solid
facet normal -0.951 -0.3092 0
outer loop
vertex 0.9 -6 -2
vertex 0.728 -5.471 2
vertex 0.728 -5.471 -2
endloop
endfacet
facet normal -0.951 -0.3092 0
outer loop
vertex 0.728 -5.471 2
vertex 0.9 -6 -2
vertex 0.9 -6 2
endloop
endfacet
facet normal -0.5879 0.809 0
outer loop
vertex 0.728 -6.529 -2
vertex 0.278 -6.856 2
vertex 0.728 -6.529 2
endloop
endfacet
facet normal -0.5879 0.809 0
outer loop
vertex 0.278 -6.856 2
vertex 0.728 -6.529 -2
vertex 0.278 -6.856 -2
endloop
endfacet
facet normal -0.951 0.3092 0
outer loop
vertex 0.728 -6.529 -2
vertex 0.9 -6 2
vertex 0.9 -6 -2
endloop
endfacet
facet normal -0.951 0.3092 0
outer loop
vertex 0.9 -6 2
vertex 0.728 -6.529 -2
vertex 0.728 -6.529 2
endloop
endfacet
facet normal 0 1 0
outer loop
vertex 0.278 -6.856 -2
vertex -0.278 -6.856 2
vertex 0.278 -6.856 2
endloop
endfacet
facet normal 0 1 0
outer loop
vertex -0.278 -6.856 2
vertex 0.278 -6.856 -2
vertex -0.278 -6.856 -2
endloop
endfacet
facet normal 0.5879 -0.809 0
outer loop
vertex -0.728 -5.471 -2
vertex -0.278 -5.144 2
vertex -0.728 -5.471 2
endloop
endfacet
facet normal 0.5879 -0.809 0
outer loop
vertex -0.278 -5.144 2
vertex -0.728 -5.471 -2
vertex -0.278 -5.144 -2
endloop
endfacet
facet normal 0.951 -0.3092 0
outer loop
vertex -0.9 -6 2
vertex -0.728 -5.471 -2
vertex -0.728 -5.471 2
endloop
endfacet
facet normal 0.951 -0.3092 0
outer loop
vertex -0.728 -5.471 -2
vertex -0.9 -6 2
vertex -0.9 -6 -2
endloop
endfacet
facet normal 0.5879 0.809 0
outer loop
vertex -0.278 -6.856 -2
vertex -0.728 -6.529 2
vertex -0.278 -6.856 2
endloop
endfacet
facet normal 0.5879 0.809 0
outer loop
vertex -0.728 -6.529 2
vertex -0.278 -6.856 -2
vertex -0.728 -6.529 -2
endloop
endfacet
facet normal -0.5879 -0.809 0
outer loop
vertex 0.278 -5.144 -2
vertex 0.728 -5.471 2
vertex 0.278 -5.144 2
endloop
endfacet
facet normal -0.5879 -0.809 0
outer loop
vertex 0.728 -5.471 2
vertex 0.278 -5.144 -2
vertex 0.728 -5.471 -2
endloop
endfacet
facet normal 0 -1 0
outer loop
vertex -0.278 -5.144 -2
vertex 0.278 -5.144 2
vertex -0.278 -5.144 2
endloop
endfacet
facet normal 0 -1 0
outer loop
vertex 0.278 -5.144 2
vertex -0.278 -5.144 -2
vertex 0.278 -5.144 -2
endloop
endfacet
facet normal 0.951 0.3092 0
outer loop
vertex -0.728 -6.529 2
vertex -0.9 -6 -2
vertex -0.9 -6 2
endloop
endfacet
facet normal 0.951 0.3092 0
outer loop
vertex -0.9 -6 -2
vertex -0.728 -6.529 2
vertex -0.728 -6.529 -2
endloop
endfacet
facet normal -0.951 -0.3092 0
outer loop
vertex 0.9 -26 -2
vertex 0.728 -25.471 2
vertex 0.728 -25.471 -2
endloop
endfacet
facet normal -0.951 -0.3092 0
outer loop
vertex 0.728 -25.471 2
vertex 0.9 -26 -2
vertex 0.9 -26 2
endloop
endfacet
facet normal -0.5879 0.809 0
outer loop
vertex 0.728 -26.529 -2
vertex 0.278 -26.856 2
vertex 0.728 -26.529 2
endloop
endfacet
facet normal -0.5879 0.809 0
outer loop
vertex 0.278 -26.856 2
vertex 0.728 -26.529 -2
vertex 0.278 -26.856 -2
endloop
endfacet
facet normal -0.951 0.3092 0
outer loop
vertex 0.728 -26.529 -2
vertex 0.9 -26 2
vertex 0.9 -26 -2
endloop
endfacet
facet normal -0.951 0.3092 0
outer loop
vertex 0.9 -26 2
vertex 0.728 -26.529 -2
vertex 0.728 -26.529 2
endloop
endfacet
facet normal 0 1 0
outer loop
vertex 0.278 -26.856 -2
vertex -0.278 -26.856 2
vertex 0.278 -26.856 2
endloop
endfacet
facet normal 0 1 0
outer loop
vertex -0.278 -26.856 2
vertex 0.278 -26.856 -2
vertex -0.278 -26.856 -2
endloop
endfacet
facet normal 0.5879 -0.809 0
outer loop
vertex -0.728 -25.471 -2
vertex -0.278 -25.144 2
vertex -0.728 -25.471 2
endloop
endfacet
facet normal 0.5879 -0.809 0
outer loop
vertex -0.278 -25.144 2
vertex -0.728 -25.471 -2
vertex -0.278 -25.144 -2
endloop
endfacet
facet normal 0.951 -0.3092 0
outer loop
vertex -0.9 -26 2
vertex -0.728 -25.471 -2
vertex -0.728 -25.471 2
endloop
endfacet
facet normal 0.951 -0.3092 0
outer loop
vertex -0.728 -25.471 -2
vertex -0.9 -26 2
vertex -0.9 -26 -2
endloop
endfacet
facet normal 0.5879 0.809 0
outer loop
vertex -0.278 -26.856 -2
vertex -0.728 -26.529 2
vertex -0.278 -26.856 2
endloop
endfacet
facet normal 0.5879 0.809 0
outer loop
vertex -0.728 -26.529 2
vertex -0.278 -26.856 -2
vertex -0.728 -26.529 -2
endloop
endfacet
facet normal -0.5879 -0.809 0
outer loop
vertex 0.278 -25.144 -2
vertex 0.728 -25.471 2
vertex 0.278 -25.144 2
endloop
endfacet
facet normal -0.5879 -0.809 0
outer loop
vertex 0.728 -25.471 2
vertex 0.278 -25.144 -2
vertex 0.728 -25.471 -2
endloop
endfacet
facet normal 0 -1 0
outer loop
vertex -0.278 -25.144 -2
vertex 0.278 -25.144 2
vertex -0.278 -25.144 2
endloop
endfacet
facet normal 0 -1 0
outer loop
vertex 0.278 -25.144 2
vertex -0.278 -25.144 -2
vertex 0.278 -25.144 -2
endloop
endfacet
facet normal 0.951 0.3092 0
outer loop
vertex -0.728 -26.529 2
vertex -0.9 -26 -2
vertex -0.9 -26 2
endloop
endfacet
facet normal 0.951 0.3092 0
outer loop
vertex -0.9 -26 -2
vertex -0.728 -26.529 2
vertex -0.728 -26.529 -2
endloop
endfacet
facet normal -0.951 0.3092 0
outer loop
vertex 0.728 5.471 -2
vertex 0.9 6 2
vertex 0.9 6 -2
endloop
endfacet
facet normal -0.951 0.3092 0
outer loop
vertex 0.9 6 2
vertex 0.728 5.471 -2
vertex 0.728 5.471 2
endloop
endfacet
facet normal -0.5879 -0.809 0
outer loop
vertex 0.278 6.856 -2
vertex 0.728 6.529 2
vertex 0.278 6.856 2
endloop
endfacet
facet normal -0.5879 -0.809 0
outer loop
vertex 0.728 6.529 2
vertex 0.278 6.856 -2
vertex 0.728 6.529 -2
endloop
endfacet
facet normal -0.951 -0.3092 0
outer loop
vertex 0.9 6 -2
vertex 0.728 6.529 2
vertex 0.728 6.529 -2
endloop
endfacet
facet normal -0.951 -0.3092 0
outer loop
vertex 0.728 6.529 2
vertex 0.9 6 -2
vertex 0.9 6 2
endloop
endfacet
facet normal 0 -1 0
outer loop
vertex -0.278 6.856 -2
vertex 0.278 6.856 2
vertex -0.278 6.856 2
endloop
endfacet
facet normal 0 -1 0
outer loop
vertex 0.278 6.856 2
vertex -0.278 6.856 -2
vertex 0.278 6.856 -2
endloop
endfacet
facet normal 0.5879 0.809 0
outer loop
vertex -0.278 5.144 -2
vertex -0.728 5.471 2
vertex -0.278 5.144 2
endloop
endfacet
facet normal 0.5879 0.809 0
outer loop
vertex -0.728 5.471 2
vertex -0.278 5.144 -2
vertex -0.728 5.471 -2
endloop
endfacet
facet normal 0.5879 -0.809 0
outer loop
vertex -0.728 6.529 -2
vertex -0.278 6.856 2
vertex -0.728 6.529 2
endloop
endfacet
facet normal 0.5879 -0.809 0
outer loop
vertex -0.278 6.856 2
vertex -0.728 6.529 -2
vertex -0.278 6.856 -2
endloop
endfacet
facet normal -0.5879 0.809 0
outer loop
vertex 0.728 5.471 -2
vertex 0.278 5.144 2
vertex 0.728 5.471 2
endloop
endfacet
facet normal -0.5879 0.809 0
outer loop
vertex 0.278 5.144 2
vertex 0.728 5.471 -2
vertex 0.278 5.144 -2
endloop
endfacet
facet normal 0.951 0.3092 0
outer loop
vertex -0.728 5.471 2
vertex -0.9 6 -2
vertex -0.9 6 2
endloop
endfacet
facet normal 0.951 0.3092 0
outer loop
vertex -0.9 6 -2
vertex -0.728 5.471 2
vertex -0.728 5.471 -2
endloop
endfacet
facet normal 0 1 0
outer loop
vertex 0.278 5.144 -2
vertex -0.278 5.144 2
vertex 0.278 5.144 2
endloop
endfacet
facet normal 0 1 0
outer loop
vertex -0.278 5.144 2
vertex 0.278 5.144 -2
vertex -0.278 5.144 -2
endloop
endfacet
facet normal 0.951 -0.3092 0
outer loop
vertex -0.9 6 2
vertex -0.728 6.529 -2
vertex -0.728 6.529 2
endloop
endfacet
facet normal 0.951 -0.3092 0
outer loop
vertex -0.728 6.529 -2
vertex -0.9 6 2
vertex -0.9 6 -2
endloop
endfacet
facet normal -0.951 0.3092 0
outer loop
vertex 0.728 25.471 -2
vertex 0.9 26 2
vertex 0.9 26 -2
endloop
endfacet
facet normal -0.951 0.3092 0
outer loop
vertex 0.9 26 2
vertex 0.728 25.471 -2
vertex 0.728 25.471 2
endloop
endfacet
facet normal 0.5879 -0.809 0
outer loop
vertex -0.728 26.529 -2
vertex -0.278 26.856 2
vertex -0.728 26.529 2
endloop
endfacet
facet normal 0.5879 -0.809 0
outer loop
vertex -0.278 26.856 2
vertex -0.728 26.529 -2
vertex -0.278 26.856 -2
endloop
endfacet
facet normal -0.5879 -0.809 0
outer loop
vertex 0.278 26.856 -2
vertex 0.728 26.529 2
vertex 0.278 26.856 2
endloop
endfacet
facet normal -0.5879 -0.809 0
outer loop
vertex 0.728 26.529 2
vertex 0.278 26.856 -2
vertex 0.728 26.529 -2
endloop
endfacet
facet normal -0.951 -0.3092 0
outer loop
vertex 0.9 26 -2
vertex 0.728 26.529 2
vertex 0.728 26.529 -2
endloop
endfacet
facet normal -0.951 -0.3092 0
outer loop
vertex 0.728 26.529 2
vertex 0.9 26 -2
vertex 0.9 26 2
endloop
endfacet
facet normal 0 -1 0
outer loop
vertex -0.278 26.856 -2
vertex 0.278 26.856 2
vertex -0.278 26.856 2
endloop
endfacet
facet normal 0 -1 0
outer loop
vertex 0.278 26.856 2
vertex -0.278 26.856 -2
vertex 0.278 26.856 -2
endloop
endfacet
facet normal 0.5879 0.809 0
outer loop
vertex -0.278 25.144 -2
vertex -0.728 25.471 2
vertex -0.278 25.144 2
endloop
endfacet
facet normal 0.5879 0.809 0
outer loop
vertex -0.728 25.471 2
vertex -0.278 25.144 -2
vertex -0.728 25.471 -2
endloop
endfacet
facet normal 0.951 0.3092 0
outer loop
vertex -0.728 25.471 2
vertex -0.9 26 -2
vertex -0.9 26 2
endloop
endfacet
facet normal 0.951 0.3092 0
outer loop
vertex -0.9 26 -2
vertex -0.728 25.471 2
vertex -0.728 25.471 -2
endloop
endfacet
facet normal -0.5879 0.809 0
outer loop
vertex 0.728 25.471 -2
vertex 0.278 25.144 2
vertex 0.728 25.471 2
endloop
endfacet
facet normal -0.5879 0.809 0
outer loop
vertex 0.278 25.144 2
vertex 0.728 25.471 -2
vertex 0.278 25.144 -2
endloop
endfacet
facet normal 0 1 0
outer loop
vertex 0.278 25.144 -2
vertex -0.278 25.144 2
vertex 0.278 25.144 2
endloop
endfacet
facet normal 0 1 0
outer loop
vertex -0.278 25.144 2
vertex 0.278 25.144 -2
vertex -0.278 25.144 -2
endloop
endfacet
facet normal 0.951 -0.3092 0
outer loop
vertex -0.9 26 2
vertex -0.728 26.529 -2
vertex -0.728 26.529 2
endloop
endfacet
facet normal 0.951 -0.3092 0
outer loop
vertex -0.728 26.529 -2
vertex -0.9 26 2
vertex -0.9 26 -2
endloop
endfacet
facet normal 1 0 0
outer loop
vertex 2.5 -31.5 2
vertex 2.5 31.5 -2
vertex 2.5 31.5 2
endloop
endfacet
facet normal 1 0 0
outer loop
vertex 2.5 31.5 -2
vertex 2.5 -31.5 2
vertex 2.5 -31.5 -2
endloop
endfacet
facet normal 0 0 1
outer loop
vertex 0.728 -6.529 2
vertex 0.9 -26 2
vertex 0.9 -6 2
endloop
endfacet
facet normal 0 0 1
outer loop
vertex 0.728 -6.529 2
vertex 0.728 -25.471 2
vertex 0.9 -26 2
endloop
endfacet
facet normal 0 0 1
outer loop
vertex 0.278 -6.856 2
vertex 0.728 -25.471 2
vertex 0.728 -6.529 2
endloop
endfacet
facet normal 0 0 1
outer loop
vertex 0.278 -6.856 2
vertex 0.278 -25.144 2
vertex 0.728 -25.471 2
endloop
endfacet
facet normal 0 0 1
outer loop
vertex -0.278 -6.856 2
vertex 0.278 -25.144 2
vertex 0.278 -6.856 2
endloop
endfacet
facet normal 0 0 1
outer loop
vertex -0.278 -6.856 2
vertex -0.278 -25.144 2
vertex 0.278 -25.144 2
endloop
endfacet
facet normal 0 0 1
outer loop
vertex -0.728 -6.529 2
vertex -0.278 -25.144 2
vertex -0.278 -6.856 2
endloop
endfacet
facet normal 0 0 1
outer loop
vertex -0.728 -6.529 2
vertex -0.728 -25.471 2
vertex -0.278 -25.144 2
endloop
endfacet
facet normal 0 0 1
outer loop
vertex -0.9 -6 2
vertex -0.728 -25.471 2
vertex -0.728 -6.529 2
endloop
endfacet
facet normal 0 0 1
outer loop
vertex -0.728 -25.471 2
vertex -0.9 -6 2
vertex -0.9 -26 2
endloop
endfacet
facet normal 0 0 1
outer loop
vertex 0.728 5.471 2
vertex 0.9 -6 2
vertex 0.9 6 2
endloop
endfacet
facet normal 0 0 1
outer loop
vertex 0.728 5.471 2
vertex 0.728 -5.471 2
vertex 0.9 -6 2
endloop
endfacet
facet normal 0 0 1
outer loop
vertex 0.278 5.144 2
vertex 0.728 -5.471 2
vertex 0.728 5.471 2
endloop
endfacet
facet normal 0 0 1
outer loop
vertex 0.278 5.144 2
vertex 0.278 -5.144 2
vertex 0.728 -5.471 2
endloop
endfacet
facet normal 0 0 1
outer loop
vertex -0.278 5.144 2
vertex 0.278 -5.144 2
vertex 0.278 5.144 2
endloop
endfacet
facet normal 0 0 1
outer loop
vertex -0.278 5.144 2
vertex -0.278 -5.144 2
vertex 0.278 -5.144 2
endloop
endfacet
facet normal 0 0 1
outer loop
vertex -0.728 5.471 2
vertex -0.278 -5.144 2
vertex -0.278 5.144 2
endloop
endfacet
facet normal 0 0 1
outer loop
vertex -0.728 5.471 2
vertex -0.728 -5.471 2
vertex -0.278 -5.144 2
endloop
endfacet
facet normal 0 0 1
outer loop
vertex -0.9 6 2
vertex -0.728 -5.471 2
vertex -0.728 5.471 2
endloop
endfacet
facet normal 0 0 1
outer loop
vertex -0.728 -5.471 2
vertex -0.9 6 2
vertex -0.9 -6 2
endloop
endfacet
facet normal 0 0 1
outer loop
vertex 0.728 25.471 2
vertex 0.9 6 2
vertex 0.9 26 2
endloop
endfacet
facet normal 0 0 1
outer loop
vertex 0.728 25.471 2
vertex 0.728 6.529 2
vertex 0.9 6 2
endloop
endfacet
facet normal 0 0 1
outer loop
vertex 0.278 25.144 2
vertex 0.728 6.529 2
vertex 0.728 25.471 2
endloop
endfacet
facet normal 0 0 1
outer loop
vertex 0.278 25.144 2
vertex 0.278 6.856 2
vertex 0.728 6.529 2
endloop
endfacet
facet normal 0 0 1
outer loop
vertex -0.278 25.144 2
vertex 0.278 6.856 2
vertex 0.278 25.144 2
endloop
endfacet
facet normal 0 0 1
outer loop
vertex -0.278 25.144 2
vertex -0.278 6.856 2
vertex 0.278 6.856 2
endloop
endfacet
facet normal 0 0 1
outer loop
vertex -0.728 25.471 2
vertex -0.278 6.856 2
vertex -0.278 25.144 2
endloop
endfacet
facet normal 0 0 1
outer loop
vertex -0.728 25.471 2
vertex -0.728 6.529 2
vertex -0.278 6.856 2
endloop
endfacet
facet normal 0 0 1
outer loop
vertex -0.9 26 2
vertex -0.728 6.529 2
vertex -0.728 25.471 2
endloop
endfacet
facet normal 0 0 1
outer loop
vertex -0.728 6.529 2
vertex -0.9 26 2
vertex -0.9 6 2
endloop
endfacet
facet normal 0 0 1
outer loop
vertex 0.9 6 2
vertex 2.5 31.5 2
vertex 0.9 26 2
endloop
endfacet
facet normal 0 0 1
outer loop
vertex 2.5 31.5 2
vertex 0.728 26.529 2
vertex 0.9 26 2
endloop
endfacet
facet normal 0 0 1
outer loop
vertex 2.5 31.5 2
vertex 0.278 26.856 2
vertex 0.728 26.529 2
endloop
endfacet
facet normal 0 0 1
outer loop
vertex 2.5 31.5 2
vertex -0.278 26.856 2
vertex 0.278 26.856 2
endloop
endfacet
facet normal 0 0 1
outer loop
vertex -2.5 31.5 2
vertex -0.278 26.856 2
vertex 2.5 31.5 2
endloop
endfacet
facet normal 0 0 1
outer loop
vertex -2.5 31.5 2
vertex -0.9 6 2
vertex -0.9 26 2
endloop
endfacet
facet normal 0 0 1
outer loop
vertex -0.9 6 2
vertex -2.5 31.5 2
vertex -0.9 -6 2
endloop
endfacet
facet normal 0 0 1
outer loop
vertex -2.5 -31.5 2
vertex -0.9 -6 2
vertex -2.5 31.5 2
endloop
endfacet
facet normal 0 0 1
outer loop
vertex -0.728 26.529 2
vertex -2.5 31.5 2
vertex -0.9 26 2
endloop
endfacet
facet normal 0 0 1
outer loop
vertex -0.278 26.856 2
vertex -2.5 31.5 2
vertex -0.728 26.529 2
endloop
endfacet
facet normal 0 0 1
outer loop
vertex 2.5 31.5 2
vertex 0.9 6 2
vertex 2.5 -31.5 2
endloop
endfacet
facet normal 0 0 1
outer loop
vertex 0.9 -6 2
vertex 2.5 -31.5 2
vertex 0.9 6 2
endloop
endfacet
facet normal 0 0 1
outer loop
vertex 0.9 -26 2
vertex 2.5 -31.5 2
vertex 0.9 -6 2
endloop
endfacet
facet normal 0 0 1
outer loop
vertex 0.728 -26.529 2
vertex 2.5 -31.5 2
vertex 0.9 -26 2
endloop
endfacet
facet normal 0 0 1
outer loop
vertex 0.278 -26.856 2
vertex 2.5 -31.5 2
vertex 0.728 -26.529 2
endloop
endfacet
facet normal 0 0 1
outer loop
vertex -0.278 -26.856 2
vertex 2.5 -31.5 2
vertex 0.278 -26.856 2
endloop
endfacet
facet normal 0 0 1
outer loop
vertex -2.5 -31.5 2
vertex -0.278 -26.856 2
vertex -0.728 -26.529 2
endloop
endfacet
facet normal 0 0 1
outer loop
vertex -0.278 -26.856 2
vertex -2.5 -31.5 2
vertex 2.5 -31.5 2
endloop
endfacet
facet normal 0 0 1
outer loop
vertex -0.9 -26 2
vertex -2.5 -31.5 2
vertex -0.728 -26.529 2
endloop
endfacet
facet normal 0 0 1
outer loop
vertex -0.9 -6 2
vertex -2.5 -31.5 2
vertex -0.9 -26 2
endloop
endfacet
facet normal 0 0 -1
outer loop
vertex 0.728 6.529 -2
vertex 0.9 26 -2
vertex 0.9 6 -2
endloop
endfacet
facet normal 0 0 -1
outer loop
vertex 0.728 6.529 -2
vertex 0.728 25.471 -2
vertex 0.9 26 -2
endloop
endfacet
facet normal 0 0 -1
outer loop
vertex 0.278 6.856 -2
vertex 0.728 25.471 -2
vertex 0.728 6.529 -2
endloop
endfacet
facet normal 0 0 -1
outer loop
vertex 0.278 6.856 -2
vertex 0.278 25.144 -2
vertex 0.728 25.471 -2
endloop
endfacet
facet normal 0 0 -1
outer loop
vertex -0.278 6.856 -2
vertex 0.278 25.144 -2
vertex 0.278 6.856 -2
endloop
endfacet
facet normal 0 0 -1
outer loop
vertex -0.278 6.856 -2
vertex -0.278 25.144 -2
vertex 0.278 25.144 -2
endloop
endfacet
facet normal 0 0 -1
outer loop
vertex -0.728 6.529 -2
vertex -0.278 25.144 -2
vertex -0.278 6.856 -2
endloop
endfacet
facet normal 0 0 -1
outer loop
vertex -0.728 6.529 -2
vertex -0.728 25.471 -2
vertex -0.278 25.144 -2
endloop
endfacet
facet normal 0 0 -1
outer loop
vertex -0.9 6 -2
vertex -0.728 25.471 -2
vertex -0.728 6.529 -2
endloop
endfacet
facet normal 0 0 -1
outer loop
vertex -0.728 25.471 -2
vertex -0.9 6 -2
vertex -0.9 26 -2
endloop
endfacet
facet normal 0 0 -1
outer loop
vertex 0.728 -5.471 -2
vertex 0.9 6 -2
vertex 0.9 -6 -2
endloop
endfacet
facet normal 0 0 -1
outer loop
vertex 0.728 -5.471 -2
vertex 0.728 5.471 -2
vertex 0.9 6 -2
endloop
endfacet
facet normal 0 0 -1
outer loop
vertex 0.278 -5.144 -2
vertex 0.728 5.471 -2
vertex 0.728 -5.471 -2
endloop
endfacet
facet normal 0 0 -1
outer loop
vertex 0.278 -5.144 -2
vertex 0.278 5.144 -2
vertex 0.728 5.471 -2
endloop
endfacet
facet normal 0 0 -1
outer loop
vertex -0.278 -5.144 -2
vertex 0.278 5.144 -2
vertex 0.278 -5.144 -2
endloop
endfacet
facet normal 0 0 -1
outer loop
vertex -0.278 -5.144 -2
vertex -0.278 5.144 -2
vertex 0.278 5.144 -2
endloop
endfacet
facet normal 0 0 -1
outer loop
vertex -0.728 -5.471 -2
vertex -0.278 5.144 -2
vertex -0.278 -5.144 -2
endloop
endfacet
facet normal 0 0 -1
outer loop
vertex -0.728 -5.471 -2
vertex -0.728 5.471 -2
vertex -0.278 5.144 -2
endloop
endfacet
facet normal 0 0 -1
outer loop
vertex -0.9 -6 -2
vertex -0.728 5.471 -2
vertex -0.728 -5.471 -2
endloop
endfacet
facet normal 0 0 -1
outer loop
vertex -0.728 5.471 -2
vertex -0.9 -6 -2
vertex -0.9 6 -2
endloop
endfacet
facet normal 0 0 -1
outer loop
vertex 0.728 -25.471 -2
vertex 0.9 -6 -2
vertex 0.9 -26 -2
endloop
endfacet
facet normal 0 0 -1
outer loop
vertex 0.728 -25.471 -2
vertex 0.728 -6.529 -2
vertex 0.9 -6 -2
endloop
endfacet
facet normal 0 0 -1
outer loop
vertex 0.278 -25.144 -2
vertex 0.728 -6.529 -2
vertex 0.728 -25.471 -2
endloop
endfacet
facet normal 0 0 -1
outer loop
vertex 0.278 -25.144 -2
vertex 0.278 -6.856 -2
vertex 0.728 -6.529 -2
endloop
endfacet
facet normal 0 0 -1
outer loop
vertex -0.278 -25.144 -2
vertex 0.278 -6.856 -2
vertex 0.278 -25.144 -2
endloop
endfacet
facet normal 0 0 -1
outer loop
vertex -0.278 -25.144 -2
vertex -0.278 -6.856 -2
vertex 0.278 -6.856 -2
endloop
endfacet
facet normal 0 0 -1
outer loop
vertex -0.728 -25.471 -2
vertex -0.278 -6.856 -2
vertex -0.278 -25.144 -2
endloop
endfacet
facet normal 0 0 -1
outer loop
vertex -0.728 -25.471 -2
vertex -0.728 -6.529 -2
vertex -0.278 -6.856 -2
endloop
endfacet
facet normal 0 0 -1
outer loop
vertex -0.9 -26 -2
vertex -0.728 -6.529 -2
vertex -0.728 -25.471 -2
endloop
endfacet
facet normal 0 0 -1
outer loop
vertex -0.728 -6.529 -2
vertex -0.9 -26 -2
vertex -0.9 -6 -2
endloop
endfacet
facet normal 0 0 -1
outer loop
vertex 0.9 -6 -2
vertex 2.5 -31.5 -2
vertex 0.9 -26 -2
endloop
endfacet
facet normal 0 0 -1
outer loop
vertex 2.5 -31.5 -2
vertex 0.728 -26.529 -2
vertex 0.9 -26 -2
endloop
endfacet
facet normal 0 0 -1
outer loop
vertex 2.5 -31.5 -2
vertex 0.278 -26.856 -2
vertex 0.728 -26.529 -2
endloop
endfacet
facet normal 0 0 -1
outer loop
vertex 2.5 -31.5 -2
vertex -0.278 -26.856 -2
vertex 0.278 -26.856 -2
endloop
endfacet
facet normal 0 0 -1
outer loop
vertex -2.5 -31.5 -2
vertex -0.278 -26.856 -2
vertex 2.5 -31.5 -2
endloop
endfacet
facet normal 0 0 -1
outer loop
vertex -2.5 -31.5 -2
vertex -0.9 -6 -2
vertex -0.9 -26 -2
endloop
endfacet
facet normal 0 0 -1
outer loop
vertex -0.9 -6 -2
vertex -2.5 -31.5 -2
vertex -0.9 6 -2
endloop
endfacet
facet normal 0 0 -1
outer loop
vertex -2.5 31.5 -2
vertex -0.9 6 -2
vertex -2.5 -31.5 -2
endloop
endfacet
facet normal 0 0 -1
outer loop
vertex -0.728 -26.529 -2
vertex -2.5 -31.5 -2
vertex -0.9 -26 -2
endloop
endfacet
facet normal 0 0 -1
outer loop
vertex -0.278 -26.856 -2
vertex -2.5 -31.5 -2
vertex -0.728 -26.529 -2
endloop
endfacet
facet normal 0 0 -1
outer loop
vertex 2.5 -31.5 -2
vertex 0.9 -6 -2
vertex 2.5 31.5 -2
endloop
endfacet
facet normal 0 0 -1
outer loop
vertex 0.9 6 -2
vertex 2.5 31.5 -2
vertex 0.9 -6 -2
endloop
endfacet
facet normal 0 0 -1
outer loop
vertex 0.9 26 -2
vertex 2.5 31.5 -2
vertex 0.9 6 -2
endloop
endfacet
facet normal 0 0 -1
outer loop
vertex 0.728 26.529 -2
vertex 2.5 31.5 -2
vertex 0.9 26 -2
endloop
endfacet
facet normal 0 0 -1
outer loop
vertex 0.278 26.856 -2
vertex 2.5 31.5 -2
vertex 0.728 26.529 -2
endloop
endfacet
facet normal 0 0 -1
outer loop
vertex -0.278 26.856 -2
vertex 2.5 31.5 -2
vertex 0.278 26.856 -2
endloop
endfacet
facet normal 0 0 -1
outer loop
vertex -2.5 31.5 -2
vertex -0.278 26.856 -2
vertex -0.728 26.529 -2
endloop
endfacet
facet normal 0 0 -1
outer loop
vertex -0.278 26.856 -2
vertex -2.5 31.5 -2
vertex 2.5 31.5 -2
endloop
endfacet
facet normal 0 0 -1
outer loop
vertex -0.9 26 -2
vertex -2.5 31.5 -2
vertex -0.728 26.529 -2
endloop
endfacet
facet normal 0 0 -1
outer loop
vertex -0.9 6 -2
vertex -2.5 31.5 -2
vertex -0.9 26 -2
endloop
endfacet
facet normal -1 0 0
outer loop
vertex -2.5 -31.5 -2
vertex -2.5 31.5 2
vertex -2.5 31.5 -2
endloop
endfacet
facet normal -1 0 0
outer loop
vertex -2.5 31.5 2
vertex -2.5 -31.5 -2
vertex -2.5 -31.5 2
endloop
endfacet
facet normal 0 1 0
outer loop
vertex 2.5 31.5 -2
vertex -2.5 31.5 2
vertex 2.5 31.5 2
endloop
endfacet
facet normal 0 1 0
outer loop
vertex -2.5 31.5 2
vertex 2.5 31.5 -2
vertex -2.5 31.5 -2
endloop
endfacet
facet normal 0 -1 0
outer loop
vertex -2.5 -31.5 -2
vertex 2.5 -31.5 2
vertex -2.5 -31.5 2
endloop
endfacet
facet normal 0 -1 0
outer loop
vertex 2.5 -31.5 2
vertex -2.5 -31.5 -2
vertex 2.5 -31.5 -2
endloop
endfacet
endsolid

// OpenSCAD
// a holder to mount256px display
// print 2 of those, insert between display and PCB
// works together with "timer16x16box" model


// from timer16x16box.scad
SIZE_256PX = 64; // module is square
MNT_256PX_Y_OFFS = 6; // hole offset Y, from side

// defined here
SLOP = 1;
WIDTH = 5;
THICKNESS = 4;

difference() {
    cube([WIDTH, SIZE_256PX - SLOP, THICKNESS], center=true);
    for (oy=[-1, 1]) 
      scale([1, oy, 1]) {
        // two holes in the middle are attaching holder to display
        // they are for making install easier only
        translate([0, MNT_256PX_Y_OFFS, 0])
        cylinder(d=1.8, h=10, center=true, $fn=10);
        
        // two holes in the sides are important ones, they accept
        // mounting screws
        translate([0, SIZE_256PX/2 - MNT_256PX_Y_OFFS, 0])
        cylinder(d=1.8, h=10, center=true, $fn=10);
    }
}    
